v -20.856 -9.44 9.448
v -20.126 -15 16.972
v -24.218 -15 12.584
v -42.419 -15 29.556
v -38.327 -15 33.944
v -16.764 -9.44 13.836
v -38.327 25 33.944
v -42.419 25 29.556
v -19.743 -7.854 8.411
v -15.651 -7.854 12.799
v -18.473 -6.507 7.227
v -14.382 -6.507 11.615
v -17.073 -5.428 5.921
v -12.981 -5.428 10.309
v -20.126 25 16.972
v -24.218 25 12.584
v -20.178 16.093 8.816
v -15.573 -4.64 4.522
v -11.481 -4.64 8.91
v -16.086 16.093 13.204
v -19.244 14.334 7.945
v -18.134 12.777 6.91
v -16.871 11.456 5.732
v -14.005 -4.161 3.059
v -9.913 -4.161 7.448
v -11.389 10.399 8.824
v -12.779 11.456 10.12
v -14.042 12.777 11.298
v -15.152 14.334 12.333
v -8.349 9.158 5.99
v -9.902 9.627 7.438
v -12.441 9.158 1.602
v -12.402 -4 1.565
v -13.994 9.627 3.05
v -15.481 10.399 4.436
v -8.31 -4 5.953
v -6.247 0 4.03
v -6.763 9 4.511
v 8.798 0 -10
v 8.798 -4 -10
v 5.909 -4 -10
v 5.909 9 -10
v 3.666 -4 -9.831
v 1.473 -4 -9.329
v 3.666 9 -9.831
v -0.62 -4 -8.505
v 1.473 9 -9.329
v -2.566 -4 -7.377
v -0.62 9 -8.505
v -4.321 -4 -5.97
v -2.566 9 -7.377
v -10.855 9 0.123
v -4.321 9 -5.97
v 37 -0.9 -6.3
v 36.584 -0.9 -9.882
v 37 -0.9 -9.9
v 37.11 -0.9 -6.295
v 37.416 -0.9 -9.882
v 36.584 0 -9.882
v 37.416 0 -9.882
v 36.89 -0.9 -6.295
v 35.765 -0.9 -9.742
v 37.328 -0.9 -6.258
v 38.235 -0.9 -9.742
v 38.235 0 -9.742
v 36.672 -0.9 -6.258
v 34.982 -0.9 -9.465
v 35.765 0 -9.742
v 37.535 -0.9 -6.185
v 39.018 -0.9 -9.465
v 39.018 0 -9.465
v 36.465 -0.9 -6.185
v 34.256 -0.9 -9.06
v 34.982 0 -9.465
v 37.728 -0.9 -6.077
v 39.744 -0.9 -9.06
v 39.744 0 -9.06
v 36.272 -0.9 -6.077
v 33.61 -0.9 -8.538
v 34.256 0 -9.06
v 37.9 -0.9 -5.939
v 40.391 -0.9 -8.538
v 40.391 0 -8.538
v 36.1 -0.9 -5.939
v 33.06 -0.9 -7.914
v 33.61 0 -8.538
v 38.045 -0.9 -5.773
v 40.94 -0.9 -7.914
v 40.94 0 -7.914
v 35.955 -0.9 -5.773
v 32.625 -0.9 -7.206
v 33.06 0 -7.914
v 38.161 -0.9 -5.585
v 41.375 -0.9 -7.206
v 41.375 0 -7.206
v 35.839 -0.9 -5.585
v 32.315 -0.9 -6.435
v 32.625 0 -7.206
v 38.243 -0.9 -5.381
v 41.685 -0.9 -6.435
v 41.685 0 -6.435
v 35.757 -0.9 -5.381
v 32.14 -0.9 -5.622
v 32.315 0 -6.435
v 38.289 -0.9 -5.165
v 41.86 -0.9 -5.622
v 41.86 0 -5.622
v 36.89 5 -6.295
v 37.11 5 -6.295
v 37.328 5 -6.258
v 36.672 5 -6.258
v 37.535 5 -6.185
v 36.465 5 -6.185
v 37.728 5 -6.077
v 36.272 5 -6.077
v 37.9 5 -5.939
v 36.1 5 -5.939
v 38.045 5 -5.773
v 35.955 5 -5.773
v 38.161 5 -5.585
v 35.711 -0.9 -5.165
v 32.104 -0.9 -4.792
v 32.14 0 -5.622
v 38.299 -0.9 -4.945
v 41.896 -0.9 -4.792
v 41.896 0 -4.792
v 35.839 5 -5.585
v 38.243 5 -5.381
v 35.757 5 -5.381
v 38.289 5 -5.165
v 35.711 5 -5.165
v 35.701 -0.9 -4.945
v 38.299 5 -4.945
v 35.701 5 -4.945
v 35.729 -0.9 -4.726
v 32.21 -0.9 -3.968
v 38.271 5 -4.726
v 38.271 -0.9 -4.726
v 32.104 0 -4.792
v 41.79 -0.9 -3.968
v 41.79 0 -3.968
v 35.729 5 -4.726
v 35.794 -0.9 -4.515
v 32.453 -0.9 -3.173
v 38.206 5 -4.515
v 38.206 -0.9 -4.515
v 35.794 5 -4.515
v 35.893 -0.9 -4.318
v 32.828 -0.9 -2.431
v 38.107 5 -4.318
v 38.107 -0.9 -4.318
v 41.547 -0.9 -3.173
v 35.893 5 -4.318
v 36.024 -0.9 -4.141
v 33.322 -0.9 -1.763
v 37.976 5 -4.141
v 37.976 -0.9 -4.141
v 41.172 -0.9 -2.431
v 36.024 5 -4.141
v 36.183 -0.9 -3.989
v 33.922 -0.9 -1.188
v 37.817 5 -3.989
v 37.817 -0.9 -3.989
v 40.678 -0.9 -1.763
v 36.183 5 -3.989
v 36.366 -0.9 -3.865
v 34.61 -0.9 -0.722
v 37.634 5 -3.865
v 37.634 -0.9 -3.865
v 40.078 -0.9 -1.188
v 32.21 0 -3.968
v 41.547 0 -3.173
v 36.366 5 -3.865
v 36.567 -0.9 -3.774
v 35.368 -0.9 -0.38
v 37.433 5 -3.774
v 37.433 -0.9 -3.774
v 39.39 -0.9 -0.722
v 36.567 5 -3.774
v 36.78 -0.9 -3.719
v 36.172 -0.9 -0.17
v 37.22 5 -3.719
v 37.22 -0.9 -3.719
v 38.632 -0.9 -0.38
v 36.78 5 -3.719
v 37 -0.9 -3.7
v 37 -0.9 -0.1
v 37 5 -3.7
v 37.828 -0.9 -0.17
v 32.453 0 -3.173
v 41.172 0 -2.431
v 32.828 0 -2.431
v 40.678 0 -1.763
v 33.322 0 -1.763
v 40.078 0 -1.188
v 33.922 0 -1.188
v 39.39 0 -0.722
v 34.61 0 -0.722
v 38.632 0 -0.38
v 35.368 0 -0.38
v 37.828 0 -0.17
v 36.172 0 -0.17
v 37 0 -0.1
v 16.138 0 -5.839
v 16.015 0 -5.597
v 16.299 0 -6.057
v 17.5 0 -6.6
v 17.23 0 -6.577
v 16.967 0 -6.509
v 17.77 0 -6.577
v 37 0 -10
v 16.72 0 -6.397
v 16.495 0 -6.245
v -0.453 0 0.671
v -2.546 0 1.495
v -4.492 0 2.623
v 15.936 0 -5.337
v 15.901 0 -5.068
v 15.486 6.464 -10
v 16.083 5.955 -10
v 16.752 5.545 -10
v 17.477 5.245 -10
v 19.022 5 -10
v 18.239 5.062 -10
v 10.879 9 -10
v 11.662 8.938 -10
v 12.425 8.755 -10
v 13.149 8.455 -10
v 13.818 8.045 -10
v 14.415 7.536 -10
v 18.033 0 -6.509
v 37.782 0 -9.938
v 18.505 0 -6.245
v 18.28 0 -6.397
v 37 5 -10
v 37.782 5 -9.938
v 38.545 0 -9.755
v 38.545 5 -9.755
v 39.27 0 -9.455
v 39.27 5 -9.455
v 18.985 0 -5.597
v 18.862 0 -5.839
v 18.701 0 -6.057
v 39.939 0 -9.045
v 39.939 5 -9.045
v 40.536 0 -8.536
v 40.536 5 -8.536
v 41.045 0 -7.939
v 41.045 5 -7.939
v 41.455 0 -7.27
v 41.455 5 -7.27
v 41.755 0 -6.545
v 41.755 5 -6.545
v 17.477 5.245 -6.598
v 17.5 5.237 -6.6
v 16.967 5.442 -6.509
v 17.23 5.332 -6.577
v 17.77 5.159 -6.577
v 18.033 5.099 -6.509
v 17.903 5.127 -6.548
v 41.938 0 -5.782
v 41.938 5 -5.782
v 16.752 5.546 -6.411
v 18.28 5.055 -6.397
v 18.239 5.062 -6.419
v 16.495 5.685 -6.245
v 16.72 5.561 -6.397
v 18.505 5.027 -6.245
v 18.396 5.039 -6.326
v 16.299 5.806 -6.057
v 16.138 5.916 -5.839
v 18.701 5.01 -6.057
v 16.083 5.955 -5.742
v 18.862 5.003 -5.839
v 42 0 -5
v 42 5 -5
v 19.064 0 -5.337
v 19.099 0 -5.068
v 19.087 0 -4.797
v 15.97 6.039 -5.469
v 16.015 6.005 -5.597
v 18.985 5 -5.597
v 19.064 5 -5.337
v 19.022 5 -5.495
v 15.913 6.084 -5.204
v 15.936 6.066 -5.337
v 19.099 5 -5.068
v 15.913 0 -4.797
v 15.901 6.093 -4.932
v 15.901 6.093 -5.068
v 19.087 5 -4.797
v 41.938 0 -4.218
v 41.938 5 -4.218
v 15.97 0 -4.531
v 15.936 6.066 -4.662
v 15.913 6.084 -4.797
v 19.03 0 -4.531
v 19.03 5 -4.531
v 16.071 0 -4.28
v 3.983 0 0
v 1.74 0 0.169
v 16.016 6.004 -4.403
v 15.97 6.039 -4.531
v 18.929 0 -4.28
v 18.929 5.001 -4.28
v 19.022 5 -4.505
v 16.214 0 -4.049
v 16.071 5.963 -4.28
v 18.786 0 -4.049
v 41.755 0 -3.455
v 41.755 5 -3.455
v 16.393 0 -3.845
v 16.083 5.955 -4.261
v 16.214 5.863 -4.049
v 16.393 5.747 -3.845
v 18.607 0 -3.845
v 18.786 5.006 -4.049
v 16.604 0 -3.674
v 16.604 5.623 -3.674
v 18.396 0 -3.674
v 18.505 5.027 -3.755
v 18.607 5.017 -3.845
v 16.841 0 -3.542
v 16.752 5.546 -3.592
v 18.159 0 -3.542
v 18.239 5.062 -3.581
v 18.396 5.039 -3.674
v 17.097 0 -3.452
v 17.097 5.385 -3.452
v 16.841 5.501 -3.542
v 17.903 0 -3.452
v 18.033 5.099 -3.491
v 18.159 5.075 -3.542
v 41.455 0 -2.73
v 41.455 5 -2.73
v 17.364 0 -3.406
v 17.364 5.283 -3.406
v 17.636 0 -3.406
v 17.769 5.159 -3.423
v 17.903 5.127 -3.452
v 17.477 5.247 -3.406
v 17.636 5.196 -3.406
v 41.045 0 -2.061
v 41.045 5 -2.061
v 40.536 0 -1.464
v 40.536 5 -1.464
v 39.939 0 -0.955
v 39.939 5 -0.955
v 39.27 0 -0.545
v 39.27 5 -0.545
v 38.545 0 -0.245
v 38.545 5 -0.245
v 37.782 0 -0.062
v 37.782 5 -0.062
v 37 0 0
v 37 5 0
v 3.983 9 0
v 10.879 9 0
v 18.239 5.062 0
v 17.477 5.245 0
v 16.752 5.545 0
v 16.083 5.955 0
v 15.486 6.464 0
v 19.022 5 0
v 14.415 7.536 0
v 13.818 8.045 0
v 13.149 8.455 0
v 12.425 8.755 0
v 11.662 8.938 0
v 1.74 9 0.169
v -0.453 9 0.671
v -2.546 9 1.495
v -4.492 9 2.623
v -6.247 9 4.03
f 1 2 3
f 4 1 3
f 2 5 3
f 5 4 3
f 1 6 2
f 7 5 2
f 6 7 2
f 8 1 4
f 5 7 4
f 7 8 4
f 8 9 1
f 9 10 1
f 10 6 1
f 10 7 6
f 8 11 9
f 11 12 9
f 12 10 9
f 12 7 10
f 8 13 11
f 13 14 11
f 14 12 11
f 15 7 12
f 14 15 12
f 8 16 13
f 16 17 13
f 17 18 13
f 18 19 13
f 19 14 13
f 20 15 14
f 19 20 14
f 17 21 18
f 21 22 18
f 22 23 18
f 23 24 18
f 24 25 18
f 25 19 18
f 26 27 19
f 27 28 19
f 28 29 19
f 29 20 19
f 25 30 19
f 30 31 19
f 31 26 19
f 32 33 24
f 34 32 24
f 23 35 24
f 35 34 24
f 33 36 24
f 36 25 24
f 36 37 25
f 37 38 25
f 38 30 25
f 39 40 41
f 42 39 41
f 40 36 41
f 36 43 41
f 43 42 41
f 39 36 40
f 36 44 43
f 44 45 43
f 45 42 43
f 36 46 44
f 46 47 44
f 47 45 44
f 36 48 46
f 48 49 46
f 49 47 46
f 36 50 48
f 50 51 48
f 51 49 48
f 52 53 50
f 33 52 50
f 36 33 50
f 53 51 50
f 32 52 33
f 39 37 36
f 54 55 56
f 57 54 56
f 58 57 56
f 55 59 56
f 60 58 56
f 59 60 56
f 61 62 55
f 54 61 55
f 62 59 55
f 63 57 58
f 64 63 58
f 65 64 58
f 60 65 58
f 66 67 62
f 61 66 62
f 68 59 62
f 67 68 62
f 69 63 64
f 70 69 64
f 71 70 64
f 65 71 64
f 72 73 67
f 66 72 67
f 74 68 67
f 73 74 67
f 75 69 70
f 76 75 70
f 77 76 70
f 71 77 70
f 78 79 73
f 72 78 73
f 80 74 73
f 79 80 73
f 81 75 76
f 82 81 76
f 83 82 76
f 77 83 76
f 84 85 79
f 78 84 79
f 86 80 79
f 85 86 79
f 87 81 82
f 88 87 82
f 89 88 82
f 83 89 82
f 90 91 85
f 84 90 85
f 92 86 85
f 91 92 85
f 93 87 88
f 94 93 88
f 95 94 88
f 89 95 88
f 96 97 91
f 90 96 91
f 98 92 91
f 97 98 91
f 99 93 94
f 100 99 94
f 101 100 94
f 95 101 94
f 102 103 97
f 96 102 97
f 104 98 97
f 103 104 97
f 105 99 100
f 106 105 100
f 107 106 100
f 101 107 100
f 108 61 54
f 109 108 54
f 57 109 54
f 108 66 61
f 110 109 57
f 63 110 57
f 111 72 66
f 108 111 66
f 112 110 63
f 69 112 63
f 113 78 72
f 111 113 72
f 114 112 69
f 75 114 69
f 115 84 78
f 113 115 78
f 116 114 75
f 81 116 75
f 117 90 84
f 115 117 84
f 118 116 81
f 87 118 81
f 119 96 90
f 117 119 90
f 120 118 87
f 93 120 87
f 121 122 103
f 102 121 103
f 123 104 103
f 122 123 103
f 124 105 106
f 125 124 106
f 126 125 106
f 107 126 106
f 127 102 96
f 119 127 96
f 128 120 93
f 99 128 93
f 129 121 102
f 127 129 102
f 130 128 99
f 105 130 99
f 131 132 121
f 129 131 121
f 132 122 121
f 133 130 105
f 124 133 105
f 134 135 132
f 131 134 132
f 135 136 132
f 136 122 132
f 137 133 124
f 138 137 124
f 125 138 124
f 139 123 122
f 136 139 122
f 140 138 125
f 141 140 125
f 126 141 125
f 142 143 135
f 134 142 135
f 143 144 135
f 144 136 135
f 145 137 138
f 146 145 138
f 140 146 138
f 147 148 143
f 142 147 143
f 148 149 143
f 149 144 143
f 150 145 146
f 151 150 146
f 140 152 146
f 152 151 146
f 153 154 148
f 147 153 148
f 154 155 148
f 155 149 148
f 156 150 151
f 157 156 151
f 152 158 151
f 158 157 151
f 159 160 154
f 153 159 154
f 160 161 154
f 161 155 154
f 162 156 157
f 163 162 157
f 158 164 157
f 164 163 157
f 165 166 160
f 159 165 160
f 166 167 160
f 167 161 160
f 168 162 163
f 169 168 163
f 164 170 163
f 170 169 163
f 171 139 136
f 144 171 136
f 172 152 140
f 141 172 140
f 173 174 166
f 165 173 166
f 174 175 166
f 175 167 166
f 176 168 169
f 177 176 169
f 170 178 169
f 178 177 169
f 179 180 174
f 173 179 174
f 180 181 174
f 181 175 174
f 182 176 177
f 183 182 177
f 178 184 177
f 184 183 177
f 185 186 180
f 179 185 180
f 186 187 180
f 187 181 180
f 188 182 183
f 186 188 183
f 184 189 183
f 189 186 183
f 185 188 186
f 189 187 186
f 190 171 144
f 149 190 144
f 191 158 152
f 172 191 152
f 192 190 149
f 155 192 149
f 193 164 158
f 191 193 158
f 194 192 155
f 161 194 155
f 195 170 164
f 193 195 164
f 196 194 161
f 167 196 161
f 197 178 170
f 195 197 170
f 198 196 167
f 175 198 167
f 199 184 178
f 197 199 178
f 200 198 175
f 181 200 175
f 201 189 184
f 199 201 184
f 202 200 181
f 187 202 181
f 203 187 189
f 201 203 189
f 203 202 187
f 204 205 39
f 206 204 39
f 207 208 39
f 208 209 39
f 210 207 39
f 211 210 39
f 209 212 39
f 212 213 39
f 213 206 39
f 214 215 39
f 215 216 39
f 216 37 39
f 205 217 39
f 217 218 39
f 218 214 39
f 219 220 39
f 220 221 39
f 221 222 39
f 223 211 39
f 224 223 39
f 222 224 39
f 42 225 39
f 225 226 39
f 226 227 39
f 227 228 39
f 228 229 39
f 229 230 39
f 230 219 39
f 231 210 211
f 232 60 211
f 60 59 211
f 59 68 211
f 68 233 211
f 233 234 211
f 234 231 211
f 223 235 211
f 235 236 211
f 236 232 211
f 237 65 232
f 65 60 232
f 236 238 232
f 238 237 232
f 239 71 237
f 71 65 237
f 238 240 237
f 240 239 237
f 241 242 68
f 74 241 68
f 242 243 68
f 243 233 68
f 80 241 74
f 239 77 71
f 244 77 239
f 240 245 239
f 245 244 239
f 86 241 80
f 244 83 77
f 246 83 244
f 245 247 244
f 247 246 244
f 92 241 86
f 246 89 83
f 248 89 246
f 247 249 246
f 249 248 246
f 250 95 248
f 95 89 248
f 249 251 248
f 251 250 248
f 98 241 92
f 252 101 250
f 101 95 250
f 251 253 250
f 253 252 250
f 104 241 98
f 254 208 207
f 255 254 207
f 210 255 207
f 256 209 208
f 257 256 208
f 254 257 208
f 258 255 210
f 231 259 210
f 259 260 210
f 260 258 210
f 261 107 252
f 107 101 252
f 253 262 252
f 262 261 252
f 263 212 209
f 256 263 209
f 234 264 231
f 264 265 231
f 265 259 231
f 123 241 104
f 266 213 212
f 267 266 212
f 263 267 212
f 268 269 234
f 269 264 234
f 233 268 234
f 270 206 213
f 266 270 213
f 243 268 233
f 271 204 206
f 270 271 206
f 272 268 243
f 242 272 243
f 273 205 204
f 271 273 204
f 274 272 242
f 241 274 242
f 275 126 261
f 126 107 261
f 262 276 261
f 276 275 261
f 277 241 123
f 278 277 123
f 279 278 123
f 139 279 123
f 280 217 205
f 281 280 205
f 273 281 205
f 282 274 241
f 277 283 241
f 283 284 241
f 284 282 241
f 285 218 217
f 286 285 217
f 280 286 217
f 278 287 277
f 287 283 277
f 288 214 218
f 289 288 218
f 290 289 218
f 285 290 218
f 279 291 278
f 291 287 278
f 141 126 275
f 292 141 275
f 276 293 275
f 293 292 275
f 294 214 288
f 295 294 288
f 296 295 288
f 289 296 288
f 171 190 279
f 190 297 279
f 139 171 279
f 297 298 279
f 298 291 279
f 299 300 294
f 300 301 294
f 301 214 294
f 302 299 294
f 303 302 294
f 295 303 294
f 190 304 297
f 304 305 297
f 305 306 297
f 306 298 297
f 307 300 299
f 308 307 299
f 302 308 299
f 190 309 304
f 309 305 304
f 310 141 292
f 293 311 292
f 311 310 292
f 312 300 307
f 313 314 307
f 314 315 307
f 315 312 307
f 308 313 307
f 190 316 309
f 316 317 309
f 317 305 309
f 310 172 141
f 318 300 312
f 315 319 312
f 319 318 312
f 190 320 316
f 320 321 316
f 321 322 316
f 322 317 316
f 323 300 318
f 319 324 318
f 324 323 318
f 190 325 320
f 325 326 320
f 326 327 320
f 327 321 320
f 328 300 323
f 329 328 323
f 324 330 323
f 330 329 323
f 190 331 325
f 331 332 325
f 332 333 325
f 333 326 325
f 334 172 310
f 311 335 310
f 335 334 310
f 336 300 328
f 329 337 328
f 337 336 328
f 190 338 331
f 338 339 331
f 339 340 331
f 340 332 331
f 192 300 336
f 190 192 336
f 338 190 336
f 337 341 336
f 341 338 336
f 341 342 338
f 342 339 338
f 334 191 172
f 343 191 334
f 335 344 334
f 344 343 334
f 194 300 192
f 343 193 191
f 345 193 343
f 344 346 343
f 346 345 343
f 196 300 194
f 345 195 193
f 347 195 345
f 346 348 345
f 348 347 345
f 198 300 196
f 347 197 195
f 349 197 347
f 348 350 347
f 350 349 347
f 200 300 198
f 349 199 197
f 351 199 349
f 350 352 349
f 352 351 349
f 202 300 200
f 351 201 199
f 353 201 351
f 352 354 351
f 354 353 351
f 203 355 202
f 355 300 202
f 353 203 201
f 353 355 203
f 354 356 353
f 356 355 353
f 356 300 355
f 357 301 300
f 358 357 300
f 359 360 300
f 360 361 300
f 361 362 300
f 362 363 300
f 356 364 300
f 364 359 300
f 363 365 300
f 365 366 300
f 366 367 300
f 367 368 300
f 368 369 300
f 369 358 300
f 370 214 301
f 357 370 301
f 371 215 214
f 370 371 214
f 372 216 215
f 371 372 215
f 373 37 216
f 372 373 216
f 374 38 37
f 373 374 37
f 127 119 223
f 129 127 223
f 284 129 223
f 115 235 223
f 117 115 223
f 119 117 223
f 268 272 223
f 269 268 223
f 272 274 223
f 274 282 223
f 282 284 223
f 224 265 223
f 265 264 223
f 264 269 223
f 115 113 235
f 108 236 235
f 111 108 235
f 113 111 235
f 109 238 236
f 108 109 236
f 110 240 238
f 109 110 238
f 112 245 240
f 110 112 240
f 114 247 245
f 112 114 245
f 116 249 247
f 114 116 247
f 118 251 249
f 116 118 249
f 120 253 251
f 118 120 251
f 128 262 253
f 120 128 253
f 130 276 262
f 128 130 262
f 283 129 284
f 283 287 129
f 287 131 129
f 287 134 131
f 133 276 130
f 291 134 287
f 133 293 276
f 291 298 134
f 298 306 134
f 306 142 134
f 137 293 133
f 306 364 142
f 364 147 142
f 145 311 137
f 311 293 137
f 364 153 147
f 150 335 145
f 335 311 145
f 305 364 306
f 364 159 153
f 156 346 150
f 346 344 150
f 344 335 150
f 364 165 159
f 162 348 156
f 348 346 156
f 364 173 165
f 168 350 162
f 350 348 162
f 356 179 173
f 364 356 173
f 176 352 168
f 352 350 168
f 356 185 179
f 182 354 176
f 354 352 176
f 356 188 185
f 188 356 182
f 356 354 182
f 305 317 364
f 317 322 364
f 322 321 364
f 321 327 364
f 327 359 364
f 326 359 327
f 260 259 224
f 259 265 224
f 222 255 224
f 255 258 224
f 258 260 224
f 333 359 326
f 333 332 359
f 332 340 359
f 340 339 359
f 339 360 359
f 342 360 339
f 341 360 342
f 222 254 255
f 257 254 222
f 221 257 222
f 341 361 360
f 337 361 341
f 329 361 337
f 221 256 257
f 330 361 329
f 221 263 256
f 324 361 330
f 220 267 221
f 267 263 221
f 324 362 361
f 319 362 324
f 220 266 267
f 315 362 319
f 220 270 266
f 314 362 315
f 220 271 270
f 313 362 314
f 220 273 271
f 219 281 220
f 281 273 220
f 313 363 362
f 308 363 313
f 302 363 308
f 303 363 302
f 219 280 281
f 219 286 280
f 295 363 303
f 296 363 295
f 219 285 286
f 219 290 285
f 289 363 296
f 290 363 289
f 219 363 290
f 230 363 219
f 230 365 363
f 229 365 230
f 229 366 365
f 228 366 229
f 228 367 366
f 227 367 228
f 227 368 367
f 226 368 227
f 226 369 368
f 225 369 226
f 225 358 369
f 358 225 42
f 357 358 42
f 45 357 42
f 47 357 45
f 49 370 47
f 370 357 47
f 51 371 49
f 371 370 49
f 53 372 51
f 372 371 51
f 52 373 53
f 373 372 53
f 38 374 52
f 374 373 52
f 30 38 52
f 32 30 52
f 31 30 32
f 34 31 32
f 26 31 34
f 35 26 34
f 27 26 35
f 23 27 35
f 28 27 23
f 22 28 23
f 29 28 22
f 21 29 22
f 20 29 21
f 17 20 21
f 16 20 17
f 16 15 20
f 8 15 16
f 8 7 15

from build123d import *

# Parameters (mm, degrees)
BOSS_EXTRUDE1_DEPTH = 5
FILLET1_R           = 5
SKETCH2_R           = 1.2999999999999945
CUT_EXTRUDE1_DEPTH  = 10
BOSS_EXTRUDE2_DEPTH = 20
BOSS_EXTRUDE3_DEPTH = 15
BOSS_EXTRUDE4_DEPTH = 6
SKETCH6_R           = 4.900000000000002
SKETCH6_R_2         = 1.299999999999994
BOSS_EXTRUDE5_DEPTH = 0.9
BOSS_EXTRUDE6_DEPTH = 3.9999999999999964
BOSS_EXTRUDE7_DEPTH = 3.9999999999999964
FILLET2_R           = 15
FILLET7_SIZE        = 5
FILLET8_R           = 5
SKETCH10_R          = 1.6000000000000019
CUT_EXTRUDE2_DEPTH  = 10


# Some blends are built 0.0001 mm under size
with BuildPart() as part:
    # Sketch1 → Boss-Extrude1 (new body)
    with BuildSketch(Plane(origin=(0, 0, 0), x_dir=(1, 0, 0), z_dir=(0, 1, 0))):
        Polygon((4.091990160374978, 5.611877790284978), (0, 10), (0, 1.79603523340848), align=None)
        Polygon((0, 1.79603523340848), (0, 10), (-42.4185146939121, -29.55590488362469), (-38.32652453353713, -33.94402709333974), (-1.9260119864091507, 0), align=None)
        Polygon((42, 10), (0, 10), (4.091990160374978, 5.611877790284978), (0, 1.7960352334084817), (0, 0), (42, 0), align=None)
        Polygon((0, 0), (0, 1.79603523340848), (-1.9260119864091507, 0), align=None)
    extrude(amount=BOSS_EXTRUDE1_DEPTH)

    # Fillet1
    fillet1_edges = [part.edges().sort_by_distance(p)[0] for p in [
        (42, 2.5, 0),
        (42, 2.5, -10),
    ]]
    fillet(fillet1_edges, radius=FILLET1_R - 0.0001)  # a hair under: the kernel refuses the full size

    # Sketch2 → Cut-Extrude1 (cut)
    with BuildSketch(Plane(origin=(0, 5, 0), x_dir=(1, 0, 0), z_dir=(0, 1, 0))):
        with Locations(Location((37.00000000000001, 4.999999999999989, 0), (0, 0, 270))):
            Circle(SKETCH2_R)
    extrude(amount=-CUT_EXTRUDE1_DEPTH, mode=Mode.SUBTRACT)

    # Sketch3 → Boss-Extrude2 (add)
    with BuildSketch(Plane(origin=(0, 5, 0), x_dir=(1, 0, 0), z_dir=(0, 1, 0))):
        Polygon((-42.4185146939121, -29.55590488362471), (-38.32652453353713, -33.94402709333974), (-20.126268259973138, -16.97201354666987), (-24.21825842034811, -12.583891336954824), align=None)
    extrude(amount=BOSS_EXTRUDE2_DEPTH)

    # Sketch4 → Boss-Extrude3 (add)
    with BuildSketch(Plane.XZ):
        Polygon((-42.4185146939121, 29.55590488362471), (-38.32652453353713, 33.94402709333974), (-20.126268259973134, 16.972013546669885), (-24.218258420348107, 12.583891336954828), align=None)
    extrude(amount=BOSS_EXTRUDE3_DEPTH)

    # Sketch5 → Boss-Extrude4 (add)
    with BuildSketch(Plane(origin=(-4.987820251299118, 0, -5.348782368720677), x_dir=(-0.7313537016191739, 0, 0.6819983600624947), z_dir=(-0.6819983600624948, 0, -0.731353701619174))):
        Polygon((26.29430619749914, -15), (26.29430619749914, 0), (13.888976828400956, 0), align=None)
        Polygon((13.888976828400958, 5), (26.29430619749914, 25), (26.29430619749914, 5), align=None)
    extrude(amount=-BOSS_EXTRUDE4_DEPTH)

    # Sketch6 → Boss-Extrude5 (add)
    with BuildSketch(Plane.XZ):
        with Locations(Location((37.00000000000001, -4.999999999999989, 0), (0, 0, 90))):
            Circle(SKETCH6_R)
        with Locations(Location((37.00000000000001, -4.999999999999989, 0), (0, 0, 90))):
            Circle(SKETCH6_R_2, mode=Mode.SUBTRACT)
    extrude(amount=BOSS_EXTRUDE5_DEPTH)

    # Sketch8 → Boss-Extrude6 (add)
    with BuildSketch(Plane.XZ):
        Polygon((0, -10), (-19.681916643400598, 8.353684194074795), (-15.589926483025625, 12.741806403789838), (8.797675113837775, -10), align=None)
    extrude(amount=BOSS_EXTRUDE6_DEPTH)

    # Sketch9 → Boss-Extrude7 (add)
    with BuildSketch(Plane(origin=(0, 5, 0), x_dir=(1, 0, 0), z_dir=(0, 1, 0))):
        Polygon((0, 10), (-20.891607783919927, -9.48173943217613), (-16.79961762354496, -13.869861641891177), (-1.92601198640914, -7.11e-15), (17.950520425486616, 5.22e-15), (17.950520425486616, 10), align=None)
    extrude(amount=BOSS_EXTRUDE7_DEPTH)

    # Fillet2
    fillet2_edges = [part.edges().sort_by_distance(p)[0] for p in [
        (-14.914116497044613, 8.999999999999996, 8.009621013204299),
        (-1.9260119864091478, 4.499999999999998, 2.06e-15),
        (0, 2.5, -10),
        (-15.518962067304274, -3.9999999999999973, 8.573648632254974),
    ]]
    fillet(fillet2_edges, radius=FILLET2_R)

    # Fillet7
    # the kernel refuses this chamfer: 5 mm, written as the material it takes off along each edge
    with BuildSketch(Plane(origin=(17.950520425486616, 8.999999999999996, 12.858414939829549), x_dir=(0.027495876610586317, -0.9996219169112968, 0), z_dir=(0, 0, -1))) as fillet7_piece_1_section:
        Polygon((FILLET7_SIZE * 0.999621916911, FILLET7_SIZE * 0.0274958766106), (-FILLET7_SIZE * 0.0274958766106, FILLET7_SIZE * 0.999621916911), (0, 0), align=None)
    fillet7_piece_1 = extrude(amount=35.71682987965911, mode=Mode.PRIVATE)
    fillet7_piece_1 = split(fillet7_piece_1, bisect_by=Plane(origin=(16.221928363932022, 5, -5.000000000000004), z_dir=(0, 1, 0)), keep=Keep.TOP, mode=Mode.PRIVATE)
    add(fillet7_piece_1, mode=Mode.SUBTRACT)

    # Fillet8
    fillet8_edges = [part.edges().sort_by_distance(p)[0] for p in [
        (12.95052042548848, 8.999999999998002, -5.000000000000002),
        (16.950520425489678, 5, -4.999999999999999),
    ]]
    fillet(fillet8_edges, radius=FILLET8_R)

    # Sketch10 → Cut-Extrude2 (cut)
    with BuildSketch(Plane(origin=(0, 0, 0), x_dir=(-1, 0, 0), z_dir=(0, -1, 0))):
        with Locations(Location((-17.499999999999247, 5.000000000001407, 0), (0, 0, 90))):
            Circle(SKETCH10_R)
    extrude(amount=-CUT_EXTRUDE2_DEPTH, mode=Mode.SUBTRACT)


solid = part.part
